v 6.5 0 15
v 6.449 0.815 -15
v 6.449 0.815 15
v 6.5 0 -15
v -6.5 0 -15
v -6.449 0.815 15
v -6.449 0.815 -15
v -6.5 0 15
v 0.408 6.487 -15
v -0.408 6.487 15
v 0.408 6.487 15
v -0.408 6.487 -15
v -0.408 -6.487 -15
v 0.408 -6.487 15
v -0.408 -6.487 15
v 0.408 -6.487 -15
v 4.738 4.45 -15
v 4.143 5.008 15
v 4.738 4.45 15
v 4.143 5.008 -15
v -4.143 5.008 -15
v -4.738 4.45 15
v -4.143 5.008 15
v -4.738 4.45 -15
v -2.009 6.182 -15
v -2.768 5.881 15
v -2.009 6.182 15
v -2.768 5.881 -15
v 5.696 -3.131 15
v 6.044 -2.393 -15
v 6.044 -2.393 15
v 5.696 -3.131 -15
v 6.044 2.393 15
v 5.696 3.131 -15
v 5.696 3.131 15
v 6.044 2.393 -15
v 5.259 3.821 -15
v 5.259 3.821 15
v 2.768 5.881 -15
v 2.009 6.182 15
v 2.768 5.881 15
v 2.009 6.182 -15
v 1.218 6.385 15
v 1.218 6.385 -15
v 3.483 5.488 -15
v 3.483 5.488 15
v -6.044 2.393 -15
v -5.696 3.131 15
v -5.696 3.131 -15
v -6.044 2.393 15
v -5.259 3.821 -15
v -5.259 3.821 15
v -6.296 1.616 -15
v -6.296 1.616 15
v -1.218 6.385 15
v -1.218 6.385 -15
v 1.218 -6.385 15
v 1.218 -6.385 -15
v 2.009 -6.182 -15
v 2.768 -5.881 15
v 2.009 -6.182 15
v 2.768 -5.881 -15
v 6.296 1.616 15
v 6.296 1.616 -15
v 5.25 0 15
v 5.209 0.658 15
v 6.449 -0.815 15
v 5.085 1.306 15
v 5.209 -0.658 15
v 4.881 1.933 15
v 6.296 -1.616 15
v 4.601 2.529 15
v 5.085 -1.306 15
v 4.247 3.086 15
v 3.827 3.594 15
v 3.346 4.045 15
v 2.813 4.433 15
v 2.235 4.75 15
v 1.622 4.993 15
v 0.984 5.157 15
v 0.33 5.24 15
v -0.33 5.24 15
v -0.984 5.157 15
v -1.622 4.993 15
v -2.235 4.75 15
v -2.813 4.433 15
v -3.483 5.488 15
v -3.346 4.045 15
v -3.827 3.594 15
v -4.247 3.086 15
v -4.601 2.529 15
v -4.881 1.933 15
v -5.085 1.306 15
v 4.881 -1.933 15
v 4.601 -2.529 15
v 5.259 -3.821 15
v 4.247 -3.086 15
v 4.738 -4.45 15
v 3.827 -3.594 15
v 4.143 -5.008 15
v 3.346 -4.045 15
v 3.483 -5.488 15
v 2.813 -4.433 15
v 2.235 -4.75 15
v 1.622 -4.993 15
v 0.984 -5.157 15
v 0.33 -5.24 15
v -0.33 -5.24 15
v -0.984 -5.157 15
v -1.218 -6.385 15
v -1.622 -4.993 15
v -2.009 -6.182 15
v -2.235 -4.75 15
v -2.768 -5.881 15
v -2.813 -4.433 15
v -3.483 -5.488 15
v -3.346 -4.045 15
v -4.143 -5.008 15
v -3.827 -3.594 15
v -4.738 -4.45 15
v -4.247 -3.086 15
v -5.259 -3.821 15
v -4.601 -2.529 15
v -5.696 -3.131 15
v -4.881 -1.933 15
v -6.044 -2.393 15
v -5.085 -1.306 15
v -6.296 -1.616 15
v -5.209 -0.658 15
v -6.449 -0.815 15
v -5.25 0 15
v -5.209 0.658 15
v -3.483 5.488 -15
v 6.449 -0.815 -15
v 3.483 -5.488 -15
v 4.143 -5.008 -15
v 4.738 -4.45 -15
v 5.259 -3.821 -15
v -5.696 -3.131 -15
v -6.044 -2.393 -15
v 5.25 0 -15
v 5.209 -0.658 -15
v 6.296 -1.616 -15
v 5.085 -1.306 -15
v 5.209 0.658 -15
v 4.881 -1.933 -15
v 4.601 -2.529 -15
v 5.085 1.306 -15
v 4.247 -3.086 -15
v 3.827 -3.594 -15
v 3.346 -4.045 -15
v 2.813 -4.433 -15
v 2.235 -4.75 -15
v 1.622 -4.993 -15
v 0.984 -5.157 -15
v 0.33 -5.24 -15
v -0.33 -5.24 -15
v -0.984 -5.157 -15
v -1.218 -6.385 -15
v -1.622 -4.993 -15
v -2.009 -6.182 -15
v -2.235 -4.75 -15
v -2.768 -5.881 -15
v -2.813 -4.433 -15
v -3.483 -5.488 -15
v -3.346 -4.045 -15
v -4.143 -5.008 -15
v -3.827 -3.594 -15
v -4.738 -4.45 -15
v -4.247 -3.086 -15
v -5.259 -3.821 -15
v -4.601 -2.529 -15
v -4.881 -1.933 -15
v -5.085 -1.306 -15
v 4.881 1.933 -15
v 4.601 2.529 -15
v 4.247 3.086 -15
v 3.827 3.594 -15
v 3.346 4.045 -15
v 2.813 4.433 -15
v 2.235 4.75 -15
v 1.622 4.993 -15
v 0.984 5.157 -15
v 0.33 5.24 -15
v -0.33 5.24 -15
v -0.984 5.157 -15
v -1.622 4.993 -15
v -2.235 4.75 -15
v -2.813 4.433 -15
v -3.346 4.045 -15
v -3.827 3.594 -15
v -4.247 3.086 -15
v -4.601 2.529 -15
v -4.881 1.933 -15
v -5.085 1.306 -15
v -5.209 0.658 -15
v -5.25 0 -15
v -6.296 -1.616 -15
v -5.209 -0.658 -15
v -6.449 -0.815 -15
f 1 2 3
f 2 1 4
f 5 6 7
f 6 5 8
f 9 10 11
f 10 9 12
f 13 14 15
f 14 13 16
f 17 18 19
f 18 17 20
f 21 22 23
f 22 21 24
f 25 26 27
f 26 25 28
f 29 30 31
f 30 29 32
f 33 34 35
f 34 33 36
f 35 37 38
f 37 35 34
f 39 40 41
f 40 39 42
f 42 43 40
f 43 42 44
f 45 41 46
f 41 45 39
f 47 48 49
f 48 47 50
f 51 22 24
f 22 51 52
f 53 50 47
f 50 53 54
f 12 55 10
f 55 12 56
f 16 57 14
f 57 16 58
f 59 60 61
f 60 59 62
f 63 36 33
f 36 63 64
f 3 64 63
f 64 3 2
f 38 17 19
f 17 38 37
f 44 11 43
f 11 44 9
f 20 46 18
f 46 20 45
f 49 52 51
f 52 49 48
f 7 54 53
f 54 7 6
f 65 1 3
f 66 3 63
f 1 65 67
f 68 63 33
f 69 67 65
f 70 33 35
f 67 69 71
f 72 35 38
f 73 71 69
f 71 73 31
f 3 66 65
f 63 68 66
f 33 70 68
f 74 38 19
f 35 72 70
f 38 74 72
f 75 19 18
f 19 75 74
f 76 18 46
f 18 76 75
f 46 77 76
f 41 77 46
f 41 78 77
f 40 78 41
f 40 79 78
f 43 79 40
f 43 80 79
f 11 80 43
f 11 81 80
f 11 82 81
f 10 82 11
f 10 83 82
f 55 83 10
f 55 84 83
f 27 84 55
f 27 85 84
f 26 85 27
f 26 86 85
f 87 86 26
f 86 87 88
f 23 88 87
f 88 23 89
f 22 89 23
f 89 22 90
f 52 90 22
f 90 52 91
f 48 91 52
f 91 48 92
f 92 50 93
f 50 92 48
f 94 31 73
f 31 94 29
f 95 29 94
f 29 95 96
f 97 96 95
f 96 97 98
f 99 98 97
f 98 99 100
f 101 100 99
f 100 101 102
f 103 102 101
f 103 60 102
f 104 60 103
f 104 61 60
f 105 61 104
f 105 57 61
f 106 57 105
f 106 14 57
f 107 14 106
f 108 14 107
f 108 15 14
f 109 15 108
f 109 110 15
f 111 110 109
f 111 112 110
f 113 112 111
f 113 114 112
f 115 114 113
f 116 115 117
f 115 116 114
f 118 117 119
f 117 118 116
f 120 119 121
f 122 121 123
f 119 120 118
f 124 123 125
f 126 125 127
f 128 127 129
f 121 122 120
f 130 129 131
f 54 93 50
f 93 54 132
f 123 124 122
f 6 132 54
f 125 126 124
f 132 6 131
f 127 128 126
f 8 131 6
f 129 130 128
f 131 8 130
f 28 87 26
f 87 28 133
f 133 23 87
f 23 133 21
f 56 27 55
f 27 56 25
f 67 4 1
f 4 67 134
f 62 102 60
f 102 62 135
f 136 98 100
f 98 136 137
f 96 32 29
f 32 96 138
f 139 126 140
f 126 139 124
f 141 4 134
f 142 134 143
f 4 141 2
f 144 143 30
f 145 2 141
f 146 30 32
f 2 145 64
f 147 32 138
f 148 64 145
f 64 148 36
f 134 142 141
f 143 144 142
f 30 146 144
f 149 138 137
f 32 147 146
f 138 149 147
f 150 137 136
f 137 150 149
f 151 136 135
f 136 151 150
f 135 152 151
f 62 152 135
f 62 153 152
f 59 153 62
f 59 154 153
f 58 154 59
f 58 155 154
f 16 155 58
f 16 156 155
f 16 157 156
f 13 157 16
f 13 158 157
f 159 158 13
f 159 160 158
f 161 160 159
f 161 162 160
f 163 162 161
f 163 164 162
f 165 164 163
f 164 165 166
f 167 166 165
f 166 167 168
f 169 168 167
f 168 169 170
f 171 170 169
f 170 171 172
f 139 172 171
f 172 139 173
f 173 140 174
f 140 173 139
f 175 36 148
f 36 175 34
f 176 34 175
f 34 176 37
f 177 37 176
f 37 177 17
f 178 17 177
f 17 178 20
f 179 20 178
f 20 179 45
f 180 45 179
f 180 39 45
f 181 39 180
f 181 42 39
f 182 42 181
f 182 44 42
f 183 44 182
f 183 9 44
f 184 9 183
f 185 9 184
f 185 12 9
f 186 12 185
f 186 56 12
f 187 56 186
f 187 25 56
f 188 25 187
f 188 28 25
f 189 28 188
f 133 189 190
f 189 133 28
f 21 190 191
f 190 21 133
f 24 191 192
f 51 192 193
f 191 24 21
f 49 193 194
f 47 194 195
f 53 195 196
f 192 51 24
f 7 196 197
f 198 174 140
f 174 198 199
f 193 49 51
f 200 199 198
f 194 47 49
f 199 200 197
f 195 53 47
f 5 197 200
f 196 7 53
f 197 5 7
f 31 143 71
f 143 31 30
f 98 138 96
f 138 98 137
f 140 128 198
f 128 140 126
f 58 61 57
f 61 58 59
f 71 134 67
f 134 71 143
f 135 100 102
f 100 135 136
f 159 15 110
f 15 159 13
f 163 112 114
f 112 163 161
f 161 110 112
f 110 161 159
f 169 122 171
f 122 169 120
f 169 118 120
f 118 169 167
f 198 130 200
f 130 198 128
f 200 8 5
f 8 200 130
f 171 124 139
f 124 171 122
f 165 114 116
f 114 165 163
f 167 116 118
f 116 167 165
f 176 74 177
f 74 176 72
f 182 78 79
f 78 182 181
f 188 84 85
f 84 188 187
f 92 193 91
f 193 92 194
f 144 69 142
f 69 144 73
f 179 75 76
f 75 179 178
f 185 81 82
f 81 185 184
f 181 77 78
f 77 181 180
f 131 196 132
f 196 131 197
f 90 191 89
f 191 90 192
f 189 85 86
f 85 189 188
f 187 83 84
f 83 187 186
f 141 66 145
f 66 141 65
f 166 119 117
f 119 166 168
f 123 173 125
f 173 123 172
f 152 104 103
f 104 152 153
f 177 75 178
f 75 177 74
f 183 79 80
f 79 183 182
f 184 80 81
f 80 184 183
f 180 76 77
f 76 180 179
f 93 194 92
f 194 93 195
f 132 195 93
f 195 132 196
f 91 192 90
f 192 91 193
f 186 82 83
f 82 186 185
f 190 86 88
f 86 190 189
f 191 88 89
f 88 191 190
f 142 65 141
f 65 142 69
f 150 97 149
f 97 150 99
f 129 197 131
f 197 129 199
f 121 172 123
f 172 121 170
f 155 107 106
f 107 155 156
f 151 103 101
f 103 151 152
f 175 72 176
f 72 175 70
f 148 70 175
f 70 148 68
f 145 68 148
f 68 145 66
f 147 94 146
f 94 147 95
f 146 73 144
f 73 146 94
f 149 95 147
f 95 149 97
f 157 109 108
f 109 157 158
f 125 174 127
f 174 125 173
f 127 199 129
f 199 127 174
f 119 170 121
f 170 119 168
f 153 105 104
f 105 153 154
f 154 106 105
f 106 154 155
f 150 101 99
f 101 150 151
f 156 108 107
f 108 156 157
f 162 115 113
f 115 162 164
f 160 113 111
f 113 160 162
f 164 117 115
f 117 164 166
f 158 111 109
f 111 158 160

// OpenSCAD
$fn = 50;


difference() {
	union() {
		translate(v = [0, 0, -15.0000000000]) {
			cylinder(h = 30, r = 6.5000000000);
		}
	}
	union() {
		translate(v = [0, 0, -100.0000000000]) {
			cylinder(h = 200, r = 5.2500000000);
		}
	}
}
